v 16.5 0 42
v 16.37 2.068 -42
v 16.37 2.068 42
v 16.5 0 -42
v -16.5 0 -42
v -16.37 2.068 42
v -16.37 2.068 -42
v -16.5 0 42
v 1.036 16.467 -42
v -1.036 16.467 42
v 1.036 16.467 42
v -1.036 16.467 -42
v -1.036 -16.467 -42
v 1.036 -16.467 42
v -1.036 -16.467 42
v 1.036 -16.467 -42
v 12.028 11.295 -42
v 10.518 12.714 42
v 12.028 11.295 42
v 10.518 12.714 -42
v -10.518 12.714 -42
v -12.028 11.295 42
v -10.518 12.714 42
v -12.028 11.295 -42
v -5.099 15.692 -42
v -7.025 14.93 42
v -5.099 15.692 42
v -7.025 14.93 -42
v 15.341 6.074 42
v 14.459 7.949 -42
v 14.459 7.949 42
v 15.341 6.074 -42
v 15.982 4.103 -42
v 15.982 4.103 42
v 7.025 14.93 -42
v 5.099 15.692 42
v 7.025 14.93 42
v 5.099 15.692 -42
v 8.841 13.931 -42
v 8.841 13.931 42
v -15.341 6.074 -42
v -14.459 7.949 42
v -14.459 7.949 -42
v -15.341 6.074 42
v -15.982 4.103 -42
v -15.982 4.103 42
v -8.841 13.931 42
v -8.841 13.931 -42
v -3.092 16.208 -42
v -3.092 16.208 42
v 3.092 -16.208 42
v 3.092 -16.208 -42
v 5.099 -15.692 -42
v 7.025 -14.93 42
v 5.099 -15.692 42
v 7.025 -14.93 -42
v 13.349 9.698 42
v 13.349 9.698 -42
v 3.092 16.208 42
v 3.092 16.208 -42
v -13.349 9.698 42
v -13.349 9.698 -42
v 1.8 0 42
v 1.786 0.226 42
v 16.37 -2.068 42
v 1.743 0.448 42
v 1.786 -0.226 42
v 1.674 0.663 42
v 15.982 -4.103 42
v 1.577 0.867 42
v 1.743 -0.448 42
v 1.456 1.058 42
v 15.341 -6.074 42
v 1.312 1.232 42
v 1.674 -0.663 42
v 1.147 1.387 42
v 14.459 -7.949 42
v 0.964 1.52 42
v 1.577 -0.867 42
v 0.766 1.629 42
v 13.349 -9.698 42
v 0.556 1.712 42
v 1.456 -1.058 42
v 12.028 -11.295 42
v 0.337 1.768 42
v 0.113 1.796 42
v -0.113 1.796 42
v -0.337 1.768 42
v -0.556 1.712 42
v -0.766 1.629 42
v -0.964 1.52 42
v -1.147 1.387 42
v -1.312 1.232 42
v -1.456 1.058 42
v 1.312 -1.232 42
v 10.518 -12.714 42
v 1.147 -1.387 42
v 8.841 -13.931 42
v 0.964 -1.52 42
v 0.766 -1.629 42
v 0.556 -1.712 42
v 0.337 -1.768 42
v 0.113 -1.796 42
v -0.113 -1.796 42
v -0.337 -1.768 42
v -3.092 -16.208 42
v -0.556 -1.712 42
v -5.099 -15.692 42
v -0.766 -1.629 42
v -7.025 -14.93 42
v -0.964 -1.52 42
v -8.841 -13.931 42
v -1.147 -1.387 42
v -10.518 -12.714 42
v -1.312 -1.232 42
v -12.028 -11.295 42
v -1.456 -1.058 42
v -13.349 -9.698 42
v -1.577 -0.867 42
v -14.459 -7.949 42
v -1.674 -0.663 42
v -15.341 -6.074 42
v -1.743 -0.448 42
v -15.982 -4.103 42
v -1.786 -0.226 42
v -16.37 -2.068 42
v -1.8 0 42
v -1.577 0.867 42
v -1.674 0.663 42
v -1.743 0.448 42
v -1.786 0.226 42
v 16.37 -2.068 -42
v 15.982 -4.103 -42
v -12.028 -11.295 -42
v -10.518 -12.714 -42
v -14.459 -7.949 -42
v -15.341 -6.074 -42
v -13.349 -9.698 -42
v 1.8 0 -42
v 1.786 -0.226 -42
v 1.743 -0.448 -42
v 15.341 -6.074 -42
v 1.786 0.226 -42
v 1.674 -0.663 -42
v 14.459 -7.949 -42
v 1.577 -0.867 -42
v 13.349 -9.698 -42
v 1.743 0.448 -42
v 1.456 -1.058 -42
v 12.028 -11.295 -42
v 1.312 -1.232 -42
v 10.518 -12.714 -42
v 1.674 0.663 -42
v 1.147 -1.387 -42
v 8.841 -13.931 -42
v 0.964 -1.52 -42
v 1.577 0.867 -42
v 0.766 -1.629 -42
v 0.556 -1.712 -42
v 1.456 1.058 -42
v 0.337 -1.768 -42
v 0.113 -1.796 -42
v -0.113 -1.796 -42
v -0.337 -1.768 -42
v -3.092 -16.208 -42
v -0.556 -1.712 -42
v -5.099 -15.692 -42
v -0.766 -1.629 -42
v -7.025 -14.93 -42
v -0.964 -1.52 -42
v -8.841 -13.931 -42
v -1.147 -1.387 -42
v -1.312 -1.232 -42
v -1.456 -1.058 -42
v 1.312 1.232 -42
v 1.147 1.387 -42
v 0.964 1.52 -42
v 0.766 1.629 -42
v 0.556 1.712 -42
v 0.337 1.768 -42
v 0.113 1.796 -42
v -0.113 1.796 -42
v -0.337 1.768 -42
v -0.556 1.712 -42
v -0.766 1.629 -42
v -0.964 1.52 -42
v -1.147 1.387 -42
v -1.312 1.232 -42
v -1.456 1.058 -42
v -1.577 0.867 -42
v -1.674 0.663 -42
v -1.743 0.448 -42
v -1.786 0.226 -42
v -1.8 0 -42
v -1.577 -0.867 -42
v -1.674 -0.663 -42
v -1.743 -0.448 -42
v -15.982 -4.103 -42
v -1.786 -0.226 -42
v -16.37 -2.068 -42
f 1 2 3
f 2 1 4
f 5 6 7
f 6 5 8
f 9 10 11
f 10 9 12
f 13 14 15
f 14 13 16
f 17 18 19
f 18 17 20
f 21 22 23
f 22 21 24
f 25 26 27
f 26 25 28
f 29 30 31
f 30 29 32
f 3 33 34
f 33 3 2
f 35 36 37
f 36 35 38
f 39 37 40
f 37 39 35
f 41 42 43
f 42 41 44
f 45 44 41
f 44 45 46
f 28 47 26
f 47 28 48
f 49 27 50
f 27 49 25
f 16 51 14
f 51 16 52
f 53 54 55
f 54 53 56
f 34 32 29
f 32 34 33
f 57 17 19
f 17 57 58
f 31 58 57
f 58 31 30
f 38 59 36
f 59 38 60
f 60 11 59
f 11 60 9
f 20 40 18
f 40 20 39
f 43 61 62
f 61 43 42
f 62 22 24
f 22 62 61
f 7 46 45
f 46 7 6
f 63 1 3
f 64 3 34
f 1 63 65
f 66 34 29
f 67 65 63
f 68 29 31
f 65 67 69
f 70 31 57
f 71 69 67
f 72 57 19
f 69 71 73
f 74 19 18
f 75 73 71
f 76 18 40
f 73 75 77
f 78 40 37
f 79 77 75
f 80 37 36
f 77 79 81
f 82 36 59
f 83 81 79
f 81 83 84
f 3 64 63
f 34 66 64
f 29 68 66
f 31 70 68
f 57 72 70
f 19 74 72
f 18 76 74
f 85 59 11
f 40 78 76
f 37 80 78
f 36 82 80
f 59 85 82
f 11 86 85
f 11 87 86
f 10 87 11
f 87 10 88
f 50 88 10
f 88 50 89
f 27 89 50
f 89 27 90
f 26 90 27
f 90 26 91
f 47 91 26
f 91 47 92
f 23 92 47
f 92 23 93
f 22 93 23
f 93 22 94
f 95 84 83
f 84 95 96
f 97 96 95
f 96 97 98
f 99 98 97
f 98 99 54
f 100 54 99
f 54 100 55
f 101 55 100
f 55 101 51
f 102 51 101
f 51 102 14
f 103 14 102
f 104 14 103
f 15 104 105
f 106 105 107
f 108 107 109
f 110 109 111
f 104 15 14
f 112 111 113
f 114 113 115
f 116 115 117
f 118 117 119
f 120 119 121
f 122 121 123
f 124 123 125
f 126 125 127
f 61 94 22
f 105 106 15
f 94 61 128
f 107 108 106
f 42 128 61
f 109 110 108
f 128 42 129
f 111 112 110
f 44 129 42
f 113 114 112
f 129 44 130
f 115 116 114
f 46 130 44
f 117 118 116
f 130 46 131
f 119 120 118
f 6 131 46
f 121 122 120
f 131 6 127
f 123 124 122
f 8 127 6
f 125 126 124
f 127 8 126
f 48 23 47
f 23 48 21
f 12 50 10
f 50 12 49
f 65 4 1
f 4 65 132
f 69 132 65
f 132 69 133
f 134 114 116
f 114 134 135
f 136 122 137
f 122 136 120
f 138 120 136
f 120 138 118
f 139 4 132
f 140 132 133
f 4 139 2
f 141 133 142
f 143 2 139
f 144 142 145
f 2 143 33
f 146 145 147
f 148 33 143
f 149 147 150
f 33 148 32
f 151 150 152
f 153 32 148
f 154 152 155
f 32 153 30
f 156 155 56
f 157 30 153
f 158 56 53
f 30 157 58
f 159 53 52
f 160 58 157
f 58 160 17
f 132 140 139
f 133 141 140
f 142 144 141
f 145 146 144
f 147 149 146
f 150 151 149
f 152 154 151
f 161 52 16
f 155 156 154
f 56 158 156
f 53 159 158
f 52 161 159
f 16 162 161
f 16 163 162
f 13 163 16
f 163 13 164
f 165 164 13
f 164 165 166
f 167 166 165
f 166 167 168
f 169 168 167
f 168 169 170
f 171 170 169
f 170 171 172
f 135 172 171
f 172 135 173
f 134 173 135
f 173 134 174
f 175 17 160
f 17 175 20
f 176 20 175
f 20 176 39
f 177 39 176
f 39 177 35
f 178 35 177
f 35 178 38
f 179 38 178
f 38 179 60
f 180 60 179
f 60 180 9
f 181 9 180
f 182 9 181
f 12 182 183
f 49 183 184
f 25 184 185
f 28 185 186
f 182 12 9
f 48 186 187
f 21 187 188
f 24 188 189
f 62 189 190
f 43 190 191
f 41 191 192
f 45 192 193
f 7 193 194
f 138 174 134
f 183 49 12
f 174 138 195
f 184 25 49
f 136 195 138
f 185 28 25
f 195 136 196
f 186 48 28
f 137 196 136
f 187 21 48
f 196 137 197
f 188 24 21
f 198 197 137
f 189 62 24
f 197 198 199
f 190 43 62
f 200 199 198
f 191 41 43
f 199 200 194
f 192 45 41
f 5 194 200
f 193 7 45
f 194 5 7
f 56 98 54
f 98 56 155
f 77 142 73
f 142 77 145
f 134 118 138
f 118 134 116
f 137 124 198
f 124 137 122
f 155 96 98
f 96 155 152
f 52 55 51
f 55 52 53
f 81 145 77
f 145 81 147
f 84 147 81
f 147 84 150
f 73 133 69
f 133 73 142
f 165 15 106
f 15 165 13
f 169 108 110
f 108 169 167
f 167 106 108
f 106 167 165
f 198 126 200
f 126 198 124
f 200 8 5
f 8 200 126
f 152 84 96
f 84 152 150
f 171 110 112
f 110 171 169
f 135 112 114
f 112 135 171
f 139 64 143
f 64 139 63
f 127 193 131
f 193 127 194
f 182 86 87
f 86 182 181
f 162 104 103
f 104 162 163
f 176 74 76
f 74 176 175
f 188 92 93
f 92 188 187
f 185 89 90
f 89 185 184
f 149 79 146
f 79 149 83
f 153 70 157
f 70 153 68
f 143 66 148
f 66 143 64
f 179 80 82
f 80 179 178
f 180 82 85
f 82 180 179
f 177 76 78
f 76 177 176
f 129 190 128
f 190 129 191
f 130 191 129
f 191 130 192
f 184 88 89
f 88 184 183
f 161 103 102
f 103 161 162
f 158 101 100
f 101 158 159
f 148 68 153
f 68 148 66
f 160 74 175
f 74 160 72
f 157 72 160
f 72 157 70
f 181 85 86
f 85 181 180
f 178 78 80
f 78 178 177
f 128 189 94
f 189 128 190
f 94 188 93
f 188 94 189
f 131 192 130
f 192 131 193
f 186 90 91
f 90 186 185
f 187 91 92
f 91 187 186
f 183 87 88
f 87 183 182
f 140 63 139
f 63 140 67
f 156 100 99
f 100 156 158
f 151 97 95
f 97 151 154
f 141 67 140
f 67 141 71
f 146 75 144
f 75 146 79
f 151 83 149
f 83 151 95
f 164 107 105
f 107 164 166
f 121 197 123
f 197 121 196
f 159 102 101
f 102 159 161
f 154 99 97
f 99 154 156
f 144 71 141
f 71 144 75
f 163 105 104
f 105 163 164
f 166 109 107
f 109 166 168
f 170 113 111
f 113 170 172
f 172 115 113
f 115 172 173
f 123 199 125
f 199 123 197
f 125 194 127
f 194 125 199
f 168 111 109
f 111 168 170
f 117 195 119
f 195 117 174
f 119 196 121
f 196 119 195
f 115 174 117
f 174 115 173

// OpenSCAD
$fn = 50;


difference() {
	union() {
		translate(v = [0, 0, -42.0000000000]) {
			cylinder(h = 84, r = 16.5000000000);
		}
	}
	union() {
		translate(v = [0, 0, -100.0000000000]) {
			cylinder(h = 200, r = 1.8000000000);
		}
	}
}
